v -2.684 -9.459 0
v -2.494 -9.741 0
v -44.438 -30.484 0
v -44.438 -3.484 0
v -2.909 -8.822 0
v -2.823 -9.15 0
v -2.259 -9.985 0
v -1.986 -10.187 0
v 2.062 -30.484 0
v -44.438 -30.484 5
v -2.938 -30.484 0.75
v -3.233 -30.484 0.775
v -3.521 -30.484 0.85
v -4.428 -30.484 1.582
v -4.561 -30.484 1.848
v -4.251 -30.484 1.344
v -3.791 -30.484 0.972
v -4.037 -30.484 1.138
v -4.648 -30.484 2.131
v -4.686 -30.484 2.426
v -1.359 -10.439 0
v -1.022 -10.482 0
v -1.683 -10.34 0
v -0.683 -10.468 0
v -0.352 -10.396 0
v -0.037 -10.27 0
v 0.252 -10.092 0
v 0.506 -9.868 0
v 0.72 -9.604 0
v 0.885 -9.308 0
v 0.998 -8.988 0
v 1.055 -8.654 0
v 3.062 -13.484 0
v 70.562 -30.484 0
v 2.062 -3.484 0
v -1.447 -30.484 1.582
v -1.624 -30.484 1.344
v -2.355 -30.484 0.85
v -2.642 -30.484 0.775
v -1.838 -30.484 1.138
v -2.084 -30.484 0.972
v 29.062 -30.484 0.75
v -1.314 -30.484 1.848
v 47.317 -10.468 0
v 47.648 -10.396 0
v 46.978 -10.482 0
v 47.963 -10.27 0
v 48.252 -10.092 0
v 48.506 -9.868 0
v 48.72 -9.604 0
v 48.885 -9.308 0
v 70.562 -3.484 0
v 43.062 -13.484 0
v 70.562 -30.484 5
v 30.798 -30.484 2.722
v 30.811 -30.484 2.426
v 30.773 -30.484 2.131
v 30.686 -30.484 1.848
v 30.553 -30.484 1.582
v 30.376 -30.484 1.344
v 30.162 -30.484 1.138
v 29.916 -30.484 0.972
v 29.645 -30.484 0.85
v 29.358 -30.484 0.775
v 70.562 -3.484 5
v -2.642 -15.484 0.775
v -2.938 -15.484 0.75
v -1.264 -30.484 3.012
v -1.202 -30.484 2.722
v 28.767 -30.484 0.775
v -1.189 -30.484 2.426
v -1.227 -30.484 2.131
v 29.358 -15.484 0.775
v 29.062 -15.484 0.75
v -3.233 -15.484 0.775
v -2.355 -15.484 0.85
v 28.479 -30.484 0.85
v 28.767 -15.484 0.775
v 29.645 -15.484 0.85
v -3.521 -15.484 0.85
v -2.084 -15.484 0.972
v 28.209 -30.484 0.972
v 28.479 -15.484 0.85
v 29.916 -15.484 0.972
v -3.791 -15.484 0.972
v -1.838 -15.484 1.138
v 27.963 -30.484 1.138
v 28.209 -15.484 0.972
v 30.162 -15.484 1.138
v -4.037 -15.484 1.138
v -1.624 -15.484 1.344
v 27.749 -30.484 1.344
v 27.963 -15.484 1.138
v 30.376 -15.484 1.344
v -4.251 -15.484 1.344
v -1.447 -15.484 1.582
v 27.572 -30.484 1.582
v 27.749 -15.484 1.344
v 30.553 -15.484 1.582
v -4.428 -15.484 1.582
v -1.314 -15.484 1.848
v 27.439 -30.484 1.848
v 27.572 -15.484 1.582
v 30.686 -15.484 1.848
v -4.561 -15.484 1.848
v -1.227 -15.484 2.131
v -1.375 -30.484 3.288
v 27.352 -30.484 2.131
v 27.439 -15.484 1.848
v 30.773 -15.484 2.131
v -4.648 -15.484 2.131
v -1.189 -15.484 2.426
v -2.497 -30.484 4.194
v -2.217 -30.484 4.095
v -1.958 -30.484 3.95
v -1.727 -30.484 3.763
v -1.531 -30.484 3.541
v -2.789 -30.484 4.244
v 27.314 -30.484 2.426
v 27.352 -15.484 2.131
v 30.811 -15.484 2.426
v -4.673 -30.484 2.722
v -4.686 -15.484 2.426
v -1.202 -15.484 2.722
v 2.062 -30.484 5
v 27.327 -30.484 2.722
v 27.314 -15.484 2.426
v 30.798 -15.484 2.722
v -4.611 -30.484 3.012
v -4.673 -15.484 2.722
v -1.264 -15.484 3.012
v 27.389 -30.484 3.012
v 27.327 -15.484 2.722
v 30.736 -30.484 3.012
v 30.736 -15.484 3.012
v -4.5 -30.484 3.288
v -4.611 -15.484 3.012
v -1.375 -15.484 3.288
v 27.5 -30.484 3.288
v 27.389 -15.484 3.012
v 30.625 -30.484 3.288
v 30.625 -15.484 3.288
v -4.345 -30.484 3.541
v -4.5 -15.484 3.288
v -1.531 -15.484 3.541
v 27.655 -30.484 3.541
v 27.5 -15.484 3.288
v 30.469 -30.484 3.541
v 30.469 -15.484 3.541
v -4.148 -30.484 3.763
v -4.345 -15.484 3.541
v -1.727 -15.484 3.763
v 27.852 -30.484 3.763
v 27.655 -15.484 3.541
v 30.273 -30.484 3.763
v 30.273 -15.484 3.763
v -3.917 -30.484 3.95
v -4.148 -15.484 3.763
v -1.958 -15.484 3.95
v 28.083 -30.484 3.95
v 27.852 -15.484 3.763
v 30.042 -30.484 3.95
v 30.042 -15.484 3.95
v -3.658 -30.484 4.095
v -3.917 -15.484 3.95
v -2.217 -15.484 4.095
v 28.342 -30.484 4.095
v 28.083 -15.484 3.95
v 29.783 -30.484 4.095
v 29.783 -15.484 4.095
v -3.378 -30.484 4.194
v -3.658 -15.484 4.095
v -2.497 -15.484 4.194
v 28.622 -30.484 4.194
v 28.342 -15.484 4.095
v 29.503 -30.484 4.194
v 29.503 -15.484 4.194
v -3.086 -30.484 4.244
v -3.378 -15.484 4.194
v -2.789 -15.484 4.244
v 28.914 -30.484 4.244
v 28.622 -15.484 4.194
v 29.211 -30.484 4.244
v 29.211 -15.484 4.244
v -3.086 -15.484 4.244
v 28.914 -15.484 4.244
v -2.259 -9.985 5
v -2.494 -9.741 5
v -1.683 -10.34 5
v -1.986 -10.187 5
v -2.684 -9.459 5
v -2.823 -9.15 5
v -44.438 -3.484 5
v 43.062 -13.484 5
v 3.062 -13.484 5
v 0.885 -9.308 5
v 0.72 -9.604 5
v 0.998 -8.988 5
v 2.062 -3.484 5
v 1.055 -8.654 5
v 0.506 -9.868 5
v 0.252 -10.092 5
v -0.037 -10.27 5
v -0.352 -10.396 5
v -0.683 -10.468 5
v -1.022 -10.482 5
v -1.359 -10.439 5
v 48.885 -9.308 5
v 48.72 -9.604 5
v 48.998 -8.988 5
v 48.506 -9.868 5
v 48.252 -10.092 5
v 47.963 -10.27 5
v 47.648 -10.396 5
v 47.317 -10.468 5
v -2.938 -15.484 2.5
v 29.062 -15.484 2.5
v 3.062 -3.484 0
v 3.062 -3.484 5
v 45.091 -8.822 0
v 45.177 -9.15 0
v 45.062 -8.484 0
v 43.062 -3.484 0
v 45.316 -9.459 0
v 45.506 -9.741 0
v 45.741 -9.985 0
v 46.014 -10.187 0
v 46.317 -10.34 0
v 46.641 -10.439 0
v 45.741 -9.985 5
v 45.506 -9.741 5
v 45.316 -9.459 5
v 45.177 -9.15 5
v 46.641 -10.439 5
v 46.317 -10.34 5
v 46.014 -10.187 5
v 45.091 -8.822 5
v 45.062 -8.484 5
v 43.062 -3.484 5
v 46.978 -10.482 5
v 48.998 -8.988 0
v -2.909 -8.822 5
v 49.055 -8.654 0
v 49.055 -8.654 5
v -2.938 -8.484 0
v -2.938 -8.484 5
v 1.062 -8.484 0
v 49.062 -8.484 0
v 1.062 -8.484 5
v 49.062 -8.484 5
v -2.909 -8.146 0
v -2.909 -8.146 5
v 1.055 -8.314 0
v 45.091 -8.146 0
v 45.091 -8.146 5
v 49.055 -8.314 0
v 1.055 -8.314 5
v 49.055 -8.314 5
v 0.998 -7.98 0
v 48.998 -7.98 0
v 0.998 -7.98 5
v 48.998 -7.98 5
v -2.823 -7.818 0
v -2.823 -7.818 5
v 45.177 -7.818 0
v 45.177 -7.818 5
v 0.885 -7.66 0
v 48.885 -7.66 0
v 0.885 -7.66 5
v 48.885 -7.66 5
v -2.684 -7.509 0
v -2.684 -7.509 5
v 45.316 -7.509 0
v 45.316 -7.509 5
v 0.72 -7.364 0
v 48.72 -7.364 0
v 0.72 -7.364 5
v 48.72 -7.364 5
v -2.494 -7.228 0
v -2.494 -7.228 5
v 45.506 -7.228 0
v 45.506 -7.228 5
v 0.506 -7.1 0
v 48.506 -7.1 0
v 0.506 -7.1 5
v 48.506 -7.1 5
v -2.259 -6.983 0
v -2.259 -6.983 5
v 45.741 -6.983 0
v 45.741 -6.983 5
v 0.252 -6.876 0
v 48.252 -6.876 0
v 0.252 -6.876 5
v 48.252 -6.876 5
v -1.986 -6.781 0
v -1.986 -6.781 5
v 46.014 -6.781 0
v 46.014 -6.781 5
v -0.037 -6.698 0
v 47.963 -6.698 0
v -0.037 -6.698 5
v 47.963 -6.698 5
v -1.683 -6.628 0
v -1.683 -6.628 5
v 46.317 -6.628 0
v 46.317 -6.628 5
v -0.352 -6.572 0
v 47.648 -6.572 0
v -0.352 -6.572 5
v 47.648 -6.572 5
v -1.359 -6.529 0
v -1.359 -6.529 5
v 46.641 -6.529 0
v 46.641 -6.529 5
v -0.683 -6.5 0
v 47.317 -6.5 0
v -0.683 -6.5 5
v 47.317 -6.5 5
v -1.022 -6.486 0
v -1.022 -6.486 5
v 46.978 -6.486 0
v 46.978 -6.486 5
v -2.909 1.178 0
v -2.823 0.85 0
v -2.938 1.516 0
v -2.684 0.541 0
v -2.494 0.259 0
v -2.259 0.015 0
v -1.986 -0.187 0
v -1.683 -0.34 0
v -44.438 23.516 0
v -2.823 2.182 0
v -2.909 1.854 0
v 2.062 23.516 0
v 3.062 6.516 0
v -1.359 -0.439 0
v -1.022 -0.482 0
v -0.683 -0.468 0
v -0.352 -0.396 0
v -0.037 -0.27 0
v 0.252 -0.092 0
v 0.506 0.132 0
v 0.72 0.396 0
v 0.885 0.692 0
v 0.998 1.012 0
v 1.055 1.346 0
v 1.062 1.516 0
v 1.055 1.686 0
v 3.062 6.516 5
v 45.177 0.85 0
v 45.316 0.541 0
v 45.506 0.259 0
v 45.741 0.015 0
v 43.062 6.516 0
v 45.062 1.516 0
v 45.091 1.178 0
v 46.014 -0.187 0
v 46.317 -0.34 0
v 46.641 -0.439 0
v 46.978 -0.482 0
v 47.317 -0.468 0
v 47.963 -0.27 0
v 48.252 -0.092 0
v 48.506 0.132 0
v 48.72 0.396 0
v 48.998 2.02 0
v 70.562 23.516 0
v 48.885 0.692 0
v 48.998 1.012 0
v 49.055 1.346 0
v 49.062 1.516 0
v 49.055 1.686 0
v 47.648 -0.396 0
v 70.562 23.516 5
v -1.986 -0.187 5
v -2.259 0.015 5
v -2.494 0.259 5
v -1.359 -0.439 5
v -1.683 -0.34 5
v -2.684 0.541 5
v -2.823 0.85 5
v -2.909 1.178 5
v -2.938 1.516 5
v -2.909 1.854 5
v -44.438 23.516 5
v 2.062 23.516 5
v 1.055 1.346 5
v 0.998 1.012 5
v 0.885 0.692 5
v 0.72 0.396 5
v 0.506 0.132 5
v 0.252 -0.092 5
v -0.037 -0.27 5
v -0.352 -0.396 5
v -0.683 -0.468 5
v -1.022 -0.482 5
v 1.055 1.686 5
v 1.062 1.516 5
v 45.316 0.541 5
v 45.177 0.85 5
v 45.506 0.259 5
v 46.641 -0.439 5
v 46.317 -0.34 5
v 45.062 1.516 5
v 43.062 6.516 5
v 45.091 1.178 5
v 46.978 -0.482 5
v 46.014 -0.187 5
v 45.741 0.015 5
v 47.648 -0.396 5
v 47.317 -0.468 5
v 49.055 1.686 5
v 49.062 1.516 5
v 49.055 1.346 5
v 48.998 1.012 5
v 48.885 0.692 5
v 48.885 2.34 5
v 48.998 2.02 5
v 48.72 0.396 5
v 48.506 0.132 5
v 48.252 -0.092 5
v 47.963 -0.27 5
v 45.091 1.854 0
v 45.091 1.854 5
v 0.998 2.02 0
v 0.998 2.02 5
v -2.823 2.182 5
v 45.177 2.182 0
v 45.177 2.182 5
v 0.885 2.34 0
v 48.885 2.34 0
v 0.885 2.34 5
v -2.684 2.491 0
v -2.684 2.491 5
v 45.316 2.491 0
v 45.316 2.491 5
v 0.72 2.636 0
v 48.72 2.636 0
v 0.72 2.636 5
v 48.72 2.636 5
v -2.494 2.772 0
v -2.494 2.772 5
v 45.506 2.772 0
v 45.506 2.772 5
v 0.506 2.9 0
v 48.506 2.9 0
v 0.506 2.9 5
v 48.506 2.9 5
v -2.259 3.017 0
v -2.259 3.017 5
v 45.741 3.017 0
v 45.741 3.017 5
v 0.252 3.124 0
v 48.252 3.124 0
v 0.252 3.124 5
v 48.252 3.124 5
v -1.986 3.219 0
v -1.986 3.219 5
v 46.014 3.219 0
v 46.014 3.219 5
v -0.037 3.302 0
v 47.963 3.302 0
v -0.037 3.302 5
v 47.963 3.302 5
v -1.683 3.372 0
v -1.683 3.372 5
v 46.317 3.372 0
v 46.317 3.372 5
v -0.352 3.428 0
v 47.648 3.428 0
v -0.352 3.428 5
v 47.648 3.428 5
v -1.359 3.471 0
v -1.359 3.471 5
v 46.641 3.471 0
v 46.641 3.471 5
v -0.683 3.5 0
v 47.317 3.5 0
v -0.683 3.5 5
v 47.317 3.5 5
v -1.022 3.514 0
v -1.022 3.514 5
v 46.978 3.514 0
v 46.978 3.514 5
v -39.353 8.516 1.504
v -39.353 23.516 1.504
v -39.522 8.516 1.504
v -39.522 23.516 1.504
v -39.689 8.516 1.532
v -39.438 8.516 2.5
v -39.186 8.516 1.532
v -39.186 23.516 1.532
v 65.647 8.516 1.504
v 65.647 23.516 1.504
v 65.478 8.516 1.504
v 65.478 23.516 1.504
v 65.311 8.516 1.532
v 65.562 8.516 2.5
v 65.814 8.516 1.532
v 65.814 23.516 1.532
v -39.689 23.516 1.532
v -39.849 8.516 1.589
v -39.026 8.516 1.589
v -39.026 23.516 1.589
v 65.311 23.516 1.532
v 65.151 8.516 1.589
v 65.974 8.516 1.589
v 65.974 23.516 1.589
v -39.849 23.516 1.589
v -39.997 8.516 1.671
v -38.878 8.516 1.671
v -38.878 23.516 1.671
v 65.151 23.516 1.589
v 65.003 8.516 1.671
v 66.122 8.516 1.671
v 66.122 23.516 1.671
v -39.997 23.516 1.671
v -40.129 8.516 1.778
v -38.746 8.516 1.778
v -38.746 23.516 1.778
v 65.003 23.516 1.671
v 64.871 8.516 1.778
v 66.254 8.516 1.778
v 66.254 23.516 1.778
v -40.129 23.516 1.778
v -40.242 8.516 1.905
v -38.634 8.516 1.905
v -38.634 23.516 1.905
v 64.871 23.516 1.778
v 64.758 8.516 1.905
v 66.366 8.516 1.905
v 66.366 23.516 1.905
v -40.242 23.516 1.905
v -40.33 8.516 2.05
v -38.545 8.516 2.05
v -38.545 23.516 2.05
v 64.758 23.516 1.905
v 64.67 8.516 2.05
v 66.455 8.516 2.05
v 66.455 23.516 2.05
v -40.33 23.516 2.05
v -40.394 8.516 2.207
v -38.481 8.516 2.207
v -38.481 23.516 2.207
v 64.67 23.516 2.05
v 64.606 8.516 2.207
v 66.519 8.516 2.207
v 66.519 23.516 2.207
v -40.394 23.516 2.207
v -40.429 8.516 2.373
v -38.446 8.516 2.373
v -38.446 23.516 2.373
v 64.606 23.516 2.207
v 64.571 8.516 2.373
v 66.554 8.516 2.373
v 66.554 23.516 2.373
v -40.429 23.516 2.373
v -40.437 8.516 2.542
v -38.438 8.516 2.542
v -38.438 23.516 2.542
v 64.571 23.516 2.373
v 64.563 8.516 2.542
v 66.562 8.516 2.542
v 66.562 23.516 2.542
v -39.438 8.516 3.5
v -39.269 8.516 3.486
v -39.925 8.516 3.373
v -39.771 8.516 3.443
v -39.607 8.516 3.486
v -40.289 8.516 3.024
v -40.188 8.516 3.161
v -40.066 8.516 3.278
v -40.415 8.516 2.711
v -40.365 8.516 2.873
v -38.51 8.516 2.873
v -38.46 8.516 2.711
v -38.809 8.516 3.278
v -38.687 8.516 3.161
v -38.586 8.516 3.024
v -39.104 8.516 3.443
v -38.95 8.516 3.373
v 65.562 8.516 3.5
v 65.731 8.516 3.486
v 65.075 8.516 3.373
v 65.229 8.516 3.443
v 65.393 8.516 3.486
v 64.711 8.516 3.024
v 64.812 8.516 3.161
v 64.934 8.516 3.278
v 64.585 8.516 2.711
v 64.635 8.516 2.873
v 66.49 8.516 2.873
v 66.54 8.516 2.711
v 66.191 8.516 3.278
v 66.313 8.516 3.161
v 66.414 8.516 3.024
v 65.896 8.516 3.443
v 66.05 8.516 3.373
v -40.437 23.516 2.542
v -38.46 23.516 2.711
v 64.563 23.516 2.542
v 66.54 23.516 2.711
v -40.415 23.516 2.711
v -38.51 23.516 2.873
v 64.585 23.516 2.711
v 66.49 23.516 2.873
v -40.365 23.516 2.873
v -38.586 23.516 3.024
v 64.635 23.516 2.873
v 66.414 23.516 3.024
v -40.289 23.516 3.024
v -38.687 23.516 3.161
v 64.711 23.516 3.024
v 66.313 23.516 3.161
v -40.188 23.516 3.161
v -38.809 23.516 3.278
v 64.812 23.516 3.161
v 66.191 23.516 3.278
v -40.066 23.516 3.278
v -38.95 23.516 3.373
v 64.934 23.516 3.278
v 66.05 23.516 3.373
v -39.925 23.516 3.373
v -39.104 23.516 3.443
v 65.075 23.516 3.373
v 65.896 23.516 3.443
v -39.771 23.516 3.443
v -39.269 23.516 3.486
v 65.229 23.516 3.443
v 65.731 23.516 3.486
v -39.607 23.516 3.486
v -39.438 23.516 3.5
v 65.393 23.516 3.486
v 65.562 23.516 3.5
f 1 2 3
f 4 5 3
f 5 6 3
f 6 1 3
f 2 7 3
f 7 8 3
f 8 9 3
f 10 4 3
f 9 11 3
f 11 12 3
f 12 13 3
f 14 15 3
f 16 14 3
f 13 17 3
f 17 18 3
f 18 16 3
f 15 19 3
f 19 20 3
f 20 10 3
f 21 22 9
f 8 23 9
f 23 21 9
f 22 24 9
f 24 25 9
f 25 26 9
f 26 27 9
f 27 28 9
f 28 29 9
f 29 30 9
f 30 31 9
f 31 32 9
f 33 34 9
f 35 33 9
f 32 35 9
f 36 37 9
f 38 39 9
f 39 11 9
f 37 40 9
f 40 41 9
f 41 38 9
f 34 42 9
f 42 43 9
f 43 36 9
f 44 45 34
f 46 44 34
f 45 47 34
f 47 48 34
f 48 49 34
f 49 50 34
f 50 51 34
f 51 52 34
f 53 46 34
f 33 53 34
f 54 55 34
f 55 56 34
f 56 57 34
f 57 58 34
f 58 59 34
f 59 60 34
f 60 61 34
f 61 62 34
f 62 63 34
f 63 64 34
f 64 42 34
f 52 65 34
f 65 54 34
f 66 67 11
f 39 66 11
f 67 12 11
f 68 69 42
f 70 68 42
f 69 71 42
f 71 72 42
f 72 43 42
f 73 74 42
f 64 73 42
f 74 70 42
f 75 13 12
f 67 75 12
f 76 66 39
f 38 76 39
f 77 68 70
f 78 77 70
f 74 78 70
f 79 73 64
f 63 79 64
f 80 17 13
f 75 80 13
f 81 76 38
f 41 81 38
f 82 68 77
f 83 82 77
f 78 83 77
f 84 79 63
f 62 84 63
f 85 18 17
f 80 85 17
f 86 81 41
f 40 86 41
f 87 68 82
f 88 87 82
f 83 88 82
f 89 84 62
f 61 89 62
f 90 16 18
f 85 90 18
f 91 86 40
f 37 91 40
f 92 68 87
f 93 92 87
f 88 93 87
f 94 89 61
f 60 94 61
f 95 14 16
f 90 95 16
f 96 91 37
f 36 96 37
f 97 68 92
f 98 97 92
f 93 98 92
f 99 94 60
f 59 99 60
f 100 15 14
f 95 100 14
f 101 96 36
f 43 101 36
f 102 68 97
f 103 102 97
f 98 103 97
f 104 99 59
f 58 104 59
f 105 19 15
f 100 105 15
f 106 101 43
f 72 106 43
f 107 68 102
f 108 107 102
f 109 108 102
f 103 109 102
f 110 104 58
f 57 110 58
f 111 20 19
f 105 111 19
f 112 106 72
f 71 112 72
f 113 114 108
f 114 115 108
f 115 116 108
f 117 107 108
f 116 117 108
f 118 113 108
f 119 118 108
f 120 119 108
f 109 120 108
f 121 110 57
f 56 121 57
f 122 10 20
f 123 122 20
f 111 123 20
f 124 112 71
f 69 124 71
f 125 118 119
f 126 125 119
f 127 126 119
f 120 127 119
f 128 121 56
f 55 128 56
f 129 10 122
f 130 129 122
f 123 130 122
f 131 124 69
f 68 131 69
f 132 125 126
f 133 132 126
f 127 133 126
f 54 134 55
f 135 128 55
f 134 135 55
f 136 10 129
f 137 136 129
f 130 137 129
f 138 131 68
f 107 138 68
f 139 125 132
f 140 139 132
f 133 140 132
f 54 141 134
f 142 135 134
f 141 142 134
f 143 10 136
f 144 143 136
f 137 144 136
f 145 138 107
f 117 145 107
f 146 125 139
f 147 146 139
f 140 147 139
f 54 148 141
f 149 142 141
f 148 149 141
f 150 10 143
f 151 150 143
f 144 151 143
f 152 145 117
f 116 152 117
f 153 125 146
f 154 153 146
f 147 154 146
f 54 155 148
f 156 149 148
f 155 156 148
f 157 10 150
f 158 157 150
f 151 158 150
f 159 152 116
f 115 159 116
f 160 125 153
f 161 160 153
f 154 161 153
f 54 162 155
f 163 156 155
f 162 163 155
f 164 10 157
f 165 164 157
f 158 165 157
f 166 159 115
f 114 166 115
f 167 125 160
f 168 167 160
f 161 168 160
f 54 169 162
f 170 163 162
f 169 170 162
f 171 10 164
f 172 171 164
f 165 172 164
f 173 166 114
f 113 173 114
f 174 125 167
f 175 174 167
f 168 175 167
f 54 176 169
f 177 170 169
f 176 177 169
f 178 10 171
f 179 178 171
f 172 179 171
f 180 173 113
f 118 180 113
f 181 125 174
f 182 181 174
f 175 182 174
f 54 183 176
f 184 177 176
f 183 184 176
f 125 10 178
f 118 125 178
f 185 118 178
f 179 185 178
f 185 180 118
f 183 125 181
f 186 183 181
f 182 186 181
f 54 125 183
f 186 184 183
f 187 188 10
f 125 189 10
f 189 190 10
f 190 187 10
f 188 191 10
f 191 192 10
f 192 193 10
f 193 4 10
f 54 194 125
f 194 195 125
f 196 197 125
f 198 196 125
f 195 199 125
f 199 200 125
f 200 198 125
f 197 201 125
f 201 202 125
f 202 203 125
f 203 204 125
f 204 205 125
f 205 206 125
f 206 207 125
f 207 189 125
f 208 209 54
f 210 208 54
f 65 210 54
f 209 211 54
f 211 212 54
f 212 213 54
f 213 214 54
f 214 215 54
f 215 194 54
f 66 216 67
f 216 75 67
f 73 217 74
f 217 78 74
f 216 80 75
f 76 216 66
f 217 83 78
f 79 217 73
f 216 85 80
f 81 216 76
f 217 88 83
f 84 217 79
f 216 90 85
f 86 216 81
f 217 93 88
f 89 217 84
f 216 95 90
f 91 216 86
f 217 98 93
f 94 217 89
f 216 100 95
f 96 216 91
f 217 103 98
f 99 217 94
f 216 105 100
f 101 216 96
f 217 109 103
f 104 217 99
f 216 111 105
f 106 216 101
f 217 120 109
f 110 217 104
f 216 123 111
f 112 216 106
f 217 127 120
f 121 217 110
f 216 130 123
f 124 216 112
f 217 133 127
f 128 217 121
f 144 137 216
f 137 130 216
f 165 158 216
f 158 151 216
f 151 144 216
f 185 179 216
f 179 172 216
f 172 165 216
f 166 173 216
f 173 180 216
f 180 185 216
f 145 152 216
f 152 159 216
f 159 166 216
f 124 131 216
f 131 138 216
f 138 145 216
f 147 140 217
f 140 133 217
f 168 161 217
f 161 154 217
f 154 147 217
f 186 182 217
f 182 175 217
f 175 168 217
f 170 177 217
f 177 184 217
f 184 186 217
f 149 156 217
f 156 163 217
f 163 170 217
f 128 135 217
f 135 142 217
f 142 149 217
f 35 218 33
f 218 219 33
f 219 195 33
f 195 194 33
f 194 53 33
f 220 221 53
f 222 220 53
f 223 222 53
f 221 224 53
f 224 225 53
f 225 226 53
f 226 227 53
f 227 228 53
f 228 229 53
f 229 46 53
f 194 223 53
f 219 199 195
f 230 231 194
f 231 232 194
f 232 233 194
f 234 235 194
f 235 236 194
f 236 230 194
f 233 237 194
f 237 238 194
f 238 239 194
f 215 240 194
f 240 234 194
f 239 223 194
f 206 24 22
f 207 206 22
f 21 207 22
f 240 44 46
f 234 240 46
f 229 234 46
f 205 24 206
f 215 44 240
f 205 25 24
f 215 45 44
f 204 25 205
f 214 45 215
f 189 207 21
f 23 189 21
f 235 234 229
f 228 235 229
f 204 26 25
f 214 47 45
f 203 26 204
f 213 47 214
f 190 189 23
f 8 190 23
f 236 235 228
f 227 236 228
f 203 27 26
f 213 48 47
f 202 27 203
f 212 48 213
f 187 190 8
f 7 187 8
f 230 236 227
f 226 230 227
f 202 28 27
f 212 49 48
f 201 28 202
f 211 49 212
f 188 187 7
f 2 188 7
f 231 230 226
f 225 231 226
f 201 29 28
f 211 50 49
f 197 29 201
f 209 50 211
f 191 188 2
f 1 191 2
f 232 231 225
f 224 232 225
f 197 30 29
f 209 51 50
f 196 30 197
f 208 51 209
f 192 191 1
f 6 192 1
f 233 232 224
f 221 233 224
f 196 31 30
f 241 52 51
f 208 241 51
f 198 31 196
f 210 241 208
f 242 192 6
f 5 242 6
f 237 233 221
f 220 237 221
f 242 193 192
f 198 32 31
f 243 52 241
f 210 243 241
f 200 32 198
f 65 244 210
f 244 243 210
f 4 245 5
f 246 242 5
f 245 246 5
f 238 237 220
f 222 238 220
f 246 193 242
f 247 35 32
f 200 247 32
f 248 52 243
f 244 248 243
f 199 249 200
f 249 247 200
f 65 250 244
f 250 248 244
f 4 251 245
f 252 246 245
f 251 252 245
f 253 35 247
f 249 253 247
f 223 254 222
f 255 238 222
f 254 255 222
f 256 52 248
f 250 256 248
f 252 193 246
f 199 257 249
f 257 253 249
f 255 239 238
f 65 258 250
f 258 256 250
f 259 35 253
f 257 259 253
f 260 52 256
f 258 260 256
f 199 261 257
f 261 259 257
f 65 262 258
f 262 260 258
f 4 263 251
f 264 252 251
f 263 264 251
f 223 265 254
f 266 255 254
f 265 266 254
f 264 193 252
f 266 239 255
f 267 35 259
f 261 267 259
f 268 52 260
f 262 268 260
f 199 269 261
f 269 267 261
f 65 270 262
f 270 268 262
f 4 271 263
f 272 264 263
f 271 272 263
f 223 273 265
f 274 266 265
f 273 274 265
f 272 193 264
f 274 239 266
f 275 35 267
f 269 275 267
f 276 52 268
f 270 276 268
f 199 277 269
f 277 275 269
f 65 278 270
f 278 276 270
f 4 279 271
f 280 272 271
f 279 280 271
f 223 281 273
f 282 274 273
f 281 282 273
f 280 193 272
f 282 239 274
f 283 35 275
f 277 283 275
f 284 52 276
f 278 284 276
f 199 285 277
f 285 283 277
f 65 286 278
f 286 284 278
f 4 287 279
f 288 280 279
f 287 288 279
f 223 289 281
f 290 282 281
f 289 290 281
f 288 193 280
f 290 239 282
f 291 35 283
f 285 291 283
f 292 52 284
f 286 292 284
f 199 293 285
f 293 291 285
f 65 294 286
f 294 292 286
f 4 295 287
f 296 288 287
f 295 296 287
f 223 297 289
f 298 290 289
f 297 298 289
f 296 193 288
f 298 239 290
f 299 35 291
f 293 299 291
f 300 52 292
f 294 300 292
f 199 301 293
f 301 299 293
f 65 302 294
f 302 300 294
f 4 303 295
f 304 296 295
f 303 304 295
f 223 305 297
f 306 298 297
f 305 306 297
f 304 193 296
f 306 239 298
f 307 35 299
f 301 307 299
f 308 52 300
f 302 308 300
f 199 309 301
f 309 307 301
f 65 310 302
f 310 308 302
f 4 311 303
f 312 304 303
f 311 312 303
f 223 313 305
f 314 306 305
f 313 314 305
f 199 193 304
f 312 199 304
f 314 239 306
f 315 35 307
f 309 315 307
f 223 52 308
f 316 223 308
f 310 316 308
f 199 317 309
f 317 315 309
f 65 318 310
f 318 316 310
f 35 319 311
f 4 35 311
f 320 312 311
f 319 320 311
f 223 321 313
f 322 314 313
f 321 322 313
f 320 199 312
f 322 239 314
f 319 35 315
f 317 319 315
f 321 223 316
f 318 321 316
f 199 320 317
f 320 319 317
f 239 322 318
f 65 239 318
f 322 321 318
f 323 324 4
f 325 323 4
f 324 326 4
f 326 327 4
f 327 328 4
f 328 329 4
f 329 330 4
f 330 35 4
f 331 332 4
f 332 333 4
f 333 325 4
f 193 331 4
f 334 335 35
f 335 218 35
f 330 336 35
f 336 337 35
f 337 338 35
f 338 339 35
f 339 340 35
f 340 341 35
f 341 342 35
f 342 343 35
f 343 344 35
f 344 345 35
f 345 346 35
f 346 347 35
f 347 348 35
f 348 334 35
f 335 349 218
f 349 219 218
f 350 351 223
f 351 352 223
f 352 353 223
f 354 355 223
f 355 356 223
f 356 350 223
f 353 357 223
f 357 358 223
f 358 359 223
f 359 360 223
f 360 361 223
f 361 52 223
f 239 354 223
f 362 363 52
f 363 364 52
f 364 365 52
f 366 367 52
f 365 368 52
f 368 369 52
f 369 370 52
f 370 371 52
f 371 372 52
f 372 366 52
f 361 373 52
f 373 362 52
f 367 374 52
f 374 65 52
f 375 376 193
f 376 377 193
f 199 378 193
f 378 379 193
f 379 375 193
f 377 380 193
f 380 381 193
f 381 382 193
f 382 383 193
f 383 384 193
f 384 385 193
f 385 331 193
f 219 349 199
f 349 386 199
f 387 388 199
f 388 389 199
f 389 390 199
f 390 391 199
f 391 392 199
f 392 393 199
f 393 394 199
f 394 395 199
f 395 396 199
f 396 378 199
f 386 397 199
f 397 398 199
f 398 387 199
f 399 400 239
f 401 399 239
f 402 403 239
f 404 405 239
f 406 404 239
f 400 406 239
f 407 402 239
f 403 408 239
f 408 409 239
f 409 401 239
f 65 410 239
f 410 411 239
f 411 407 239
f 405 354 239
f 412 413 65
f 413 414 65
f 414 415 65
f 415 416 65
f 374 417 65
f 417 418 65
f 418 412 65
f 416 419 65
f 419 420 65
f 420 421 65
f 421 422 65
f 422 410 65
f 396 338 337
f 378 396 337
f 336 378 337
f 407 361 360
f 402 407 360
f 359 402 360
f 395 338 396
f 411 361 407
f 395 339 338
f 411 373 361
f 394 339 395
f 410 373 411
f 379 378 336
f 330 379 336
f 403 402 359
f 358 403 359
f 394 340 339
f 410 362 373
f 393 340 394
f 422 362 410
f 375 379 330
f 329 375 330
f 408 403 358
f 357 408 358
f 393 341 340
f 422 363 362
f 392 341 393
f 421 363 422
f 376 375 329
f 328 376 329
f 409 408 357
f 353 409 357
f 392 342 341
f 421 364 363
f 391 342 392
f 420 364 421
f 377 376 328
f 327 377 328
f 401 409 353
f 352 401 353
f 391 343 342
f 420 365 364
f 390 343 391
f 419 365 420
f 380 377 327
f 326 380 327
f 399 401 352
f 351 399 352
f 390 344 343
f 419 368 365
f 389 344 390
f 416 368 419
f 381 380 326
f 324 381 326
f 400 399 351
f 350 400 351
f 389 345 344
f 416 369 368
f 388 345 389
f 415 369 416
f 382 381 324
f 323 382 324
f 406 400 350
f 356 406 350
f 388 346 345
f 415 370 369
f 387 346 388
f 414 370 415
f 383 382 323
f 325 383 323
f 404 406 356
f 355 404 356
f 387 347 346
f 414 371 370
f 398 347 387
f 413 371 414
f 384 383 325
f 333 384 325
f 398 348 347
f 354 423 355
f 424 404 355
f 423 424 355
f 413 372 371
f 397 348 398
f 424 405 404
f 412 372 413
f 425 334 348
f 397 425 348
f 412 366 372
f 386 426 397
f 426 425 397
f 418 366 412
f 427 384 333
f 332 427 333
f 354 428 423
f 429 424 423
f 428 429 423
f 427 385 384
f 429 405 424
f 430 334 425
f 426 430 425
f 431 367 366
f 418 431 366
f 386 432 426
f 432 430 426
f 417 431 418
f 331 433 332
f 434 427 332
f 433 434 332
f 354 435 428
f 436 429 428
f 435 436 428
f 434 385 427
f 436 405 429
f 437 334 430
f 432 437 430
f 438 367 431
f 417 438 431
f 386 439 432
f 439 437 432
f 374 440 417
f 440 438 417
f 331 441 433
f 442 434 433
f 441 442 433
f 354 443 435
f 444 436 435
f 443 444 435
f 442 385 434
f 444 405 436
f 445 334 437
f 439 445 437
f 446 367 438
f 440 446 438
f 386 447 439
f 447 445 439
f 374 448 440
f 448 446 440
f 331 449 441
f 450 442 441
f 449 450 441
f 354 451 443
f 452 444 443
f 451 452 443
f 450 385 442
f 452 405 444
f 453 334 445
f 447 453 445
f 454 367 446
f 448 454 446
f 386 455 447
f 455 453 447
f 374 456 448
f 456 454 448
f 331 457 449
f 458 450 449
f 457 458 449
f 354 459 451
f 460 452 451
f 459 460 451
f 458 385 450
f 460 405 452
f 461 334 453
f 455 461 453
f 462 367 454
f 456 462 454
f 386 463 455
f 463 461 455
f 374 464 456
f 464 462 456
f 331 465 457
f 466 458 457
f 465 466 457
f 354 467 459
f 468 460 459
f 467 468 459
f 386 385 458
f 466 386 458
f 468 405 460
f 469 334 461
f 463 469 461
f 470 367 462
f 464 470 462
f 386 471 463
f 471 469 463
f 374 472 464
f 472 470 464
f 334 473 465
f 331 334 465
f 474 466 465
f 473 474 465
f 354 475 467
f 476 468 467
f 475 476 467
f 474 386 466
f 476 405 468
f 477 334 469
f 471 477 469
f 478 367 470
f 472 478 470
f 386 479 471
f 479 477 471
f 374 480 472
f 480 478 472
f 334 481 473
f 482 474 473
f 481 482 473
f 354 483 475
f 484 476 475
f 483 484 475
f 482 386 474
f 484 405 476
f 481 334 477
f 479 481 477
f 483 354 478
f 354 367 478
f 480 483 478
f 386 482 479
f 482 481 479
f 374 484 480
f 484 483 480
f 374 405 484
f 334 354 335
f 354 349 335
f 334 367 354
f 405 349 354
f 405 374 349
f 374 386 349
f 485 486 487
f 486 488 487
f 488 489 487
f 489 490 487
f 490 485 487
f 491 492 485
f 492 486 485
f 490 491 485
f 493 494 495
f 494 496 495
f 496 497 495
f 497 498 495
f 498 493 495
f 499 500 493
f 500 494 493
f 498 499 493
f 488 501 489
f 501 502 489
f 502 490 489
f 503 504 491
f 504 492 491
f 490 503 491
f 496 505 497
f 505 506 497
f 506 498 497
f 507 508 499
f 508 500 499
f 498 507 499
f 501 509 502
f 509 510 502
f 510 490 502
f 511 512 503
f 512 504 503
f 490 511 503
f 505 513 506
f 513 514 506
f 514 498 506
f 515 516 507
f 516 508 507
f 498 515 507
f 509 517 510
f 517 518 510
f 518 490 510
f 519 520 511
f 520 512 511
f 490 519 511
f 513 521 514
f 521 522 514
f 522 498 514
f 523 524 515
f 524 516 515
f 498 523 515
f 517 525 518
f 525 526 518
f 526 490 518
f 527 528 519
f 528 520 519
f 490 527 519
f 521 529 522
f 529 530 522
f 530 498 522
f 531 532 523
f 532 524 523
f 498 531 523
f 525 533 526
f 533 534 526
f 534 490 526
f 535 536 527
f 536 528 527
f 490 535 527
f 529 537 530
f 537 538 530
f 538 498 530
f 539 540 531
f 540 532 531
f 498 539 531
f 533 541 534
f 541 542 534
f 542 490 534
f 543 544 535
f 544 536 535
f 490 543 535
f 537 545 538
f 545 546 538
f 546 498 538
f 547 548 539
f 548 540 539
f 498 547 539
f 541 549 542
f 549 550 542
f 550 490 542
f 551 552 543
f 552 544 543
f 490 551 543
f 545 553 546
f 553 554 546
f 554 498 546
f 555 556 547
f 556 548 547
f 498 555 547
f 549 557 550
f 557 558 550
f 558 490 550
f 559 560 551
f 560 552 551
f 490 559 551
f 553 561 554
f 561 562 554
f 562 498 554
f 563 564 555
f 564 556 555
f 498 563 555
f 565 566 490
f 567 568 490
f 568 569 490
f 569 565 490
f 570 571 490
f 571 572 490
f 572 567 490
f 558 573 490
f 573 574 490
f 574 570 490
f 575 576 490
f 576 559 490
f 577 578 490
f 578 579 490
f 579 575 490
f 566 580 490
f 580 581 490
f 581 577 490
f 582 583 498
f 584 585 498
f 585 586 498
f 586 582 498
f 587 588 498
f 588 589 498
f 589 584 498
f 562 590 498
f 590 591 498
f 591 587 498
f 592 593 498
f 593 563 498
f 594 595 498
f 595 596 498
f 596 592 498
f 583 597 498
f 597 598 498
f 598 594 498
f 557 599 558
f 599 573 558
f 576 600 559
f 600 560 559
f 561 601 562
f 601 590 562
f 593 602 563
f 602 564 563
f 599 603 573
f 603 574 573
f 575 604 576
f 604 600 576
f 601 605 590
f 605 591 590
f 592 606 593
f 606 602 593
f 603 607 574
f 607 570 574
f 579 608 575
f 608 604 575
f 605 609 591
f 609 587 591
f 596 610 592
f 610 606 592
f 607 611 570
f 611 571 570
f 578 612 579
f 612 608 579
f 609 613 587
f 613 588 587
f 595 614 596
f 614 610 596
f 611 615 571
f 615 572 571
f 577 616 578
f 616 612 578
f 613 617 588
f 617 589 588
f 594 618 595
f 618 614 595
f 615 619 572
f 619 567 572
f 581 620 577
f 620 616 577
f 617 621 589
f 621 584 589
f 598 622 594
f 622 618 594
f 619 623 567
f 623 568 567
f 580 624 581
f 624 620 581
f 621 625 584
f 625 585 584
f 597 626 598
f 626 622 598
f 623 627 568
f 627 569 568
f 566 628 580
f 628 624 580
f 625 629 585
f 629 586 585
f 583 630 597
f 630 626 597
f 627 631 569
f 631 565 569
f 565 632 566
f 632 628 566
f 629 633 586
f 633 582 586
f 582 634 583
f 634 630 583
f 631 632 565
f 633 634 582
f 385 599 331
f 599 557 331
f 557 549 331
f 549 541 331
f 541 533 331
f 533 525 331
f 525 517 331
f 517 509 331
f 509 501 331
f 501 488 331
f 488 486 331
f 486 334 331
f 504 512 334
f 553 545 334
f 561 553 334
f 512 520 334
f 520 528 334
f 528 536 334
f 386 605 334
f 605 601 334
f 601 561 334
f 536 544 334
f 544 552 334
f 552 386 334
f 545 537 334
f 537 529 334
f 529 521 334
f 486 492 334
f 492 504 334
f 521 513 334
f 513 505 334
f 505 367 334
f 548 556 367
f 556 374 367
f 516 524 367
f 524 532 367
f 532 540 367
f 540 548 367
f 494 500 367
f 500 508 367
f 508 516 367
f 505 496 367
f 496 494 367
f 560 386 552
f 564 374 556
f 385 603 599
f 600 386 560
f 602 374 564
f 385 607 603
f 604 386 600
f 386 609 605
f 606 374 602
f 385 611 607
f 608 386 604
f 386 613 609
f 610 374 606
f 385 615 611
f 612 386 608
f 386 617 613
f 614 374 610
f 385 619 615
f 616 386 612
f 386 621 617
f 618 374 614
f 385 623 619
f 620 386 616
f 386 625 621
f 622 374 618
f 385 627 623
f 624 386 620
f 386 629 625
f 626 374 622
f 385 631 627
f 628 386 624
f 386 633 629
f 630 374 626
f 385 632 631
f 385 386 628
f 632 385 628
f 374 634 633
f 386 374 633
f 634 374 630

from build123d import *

# Parameters (mm, degrees)
SKETCH_1_W          = 115
SKETCH_1_H          = 54
SKETCH_1_R          = 2
SKETCH_1_W_2        = 40
SKETCH_1_H_2        = 20
EXTRUDE_3_DEPTH     = 5
SKETCH_2_R          = 1
CUT_EXTRUDE_1_DEPTH = 15
SKETCH_3_R          = 1.75
CUT_EXTRUDE_2_DEPTH = 15


with BuildPart() as part:
    # 草圖1 → 填料-伸長3 (new body)
    with BuildSketch(Plane.XY):
        with Locations((13.062480584, -3.484099434)):
            Rectangle(SKETCH_1_W, SKETCH_1_H)
        with Locations((-0.937519416, -8.484099434)):
            Circle(SKETCH_1_R, mode=Mode.SUBTRACT)
        with Locations((47.062480584, -8.484099434)):
            Circle(SKETCH_1_R, mode=Mode.SUBTRACT)
        with Locations((-0.937519416, 1.515900566)):
            Circle(SKETCH_1_R, mode=Mode.SUBTRACT)
        with Locations((47.062480584, 1.515900566)):
            Circle(SKETCH_1_R, mode=Mode.SUBTRACT)
        with Locations((23.062480584, -3.484099434)):
            Rectangle(SKETCH_1_W_2, SKETCH_1_H_2, mode=Mode.SUBTRACT)
    extrude(amount=EXTRUDE_3_DEPTH)

    # 草圖2 → 除料-伸長1 (cut)
    with BuildSketch(Plane(origin=(0, 23.515900566, 0), x_dir=(1, 0, 0), z_dir=(0, 1, 0))):
        with Locations(Location((-39.437519416, -2.5, 0), (0, 0, 270))):
            Circle(SKETCH_2_R)
        with Locations(Location((65.562480584, -2.5, 0), (0, 0, 270))):
            Circle(SKETCH_2_R)
    extrude(amount=-CUT_EXTRUDE_1_DEPTH, mode=Mode.SUBTRACT)

    # 草圖3 → 除料-伸長2 (cut)
    with BuildSketch(Plane.XZ.offset(30.484099434)):
        with Locations(Location((29.062480584, 2.5, 0), (0, 0, 270))):
            Circle(SKETCH_3_R)
        with Locations(Location((-2.937519416, 2.5, 0), (0, 0, 270))):
            Circle(SKETCH_3_R)
    extrude(amount=-CUT_EXTRUDE_2_DEPTH, mode=Mode.SUBTRACT)


solid = part.part
